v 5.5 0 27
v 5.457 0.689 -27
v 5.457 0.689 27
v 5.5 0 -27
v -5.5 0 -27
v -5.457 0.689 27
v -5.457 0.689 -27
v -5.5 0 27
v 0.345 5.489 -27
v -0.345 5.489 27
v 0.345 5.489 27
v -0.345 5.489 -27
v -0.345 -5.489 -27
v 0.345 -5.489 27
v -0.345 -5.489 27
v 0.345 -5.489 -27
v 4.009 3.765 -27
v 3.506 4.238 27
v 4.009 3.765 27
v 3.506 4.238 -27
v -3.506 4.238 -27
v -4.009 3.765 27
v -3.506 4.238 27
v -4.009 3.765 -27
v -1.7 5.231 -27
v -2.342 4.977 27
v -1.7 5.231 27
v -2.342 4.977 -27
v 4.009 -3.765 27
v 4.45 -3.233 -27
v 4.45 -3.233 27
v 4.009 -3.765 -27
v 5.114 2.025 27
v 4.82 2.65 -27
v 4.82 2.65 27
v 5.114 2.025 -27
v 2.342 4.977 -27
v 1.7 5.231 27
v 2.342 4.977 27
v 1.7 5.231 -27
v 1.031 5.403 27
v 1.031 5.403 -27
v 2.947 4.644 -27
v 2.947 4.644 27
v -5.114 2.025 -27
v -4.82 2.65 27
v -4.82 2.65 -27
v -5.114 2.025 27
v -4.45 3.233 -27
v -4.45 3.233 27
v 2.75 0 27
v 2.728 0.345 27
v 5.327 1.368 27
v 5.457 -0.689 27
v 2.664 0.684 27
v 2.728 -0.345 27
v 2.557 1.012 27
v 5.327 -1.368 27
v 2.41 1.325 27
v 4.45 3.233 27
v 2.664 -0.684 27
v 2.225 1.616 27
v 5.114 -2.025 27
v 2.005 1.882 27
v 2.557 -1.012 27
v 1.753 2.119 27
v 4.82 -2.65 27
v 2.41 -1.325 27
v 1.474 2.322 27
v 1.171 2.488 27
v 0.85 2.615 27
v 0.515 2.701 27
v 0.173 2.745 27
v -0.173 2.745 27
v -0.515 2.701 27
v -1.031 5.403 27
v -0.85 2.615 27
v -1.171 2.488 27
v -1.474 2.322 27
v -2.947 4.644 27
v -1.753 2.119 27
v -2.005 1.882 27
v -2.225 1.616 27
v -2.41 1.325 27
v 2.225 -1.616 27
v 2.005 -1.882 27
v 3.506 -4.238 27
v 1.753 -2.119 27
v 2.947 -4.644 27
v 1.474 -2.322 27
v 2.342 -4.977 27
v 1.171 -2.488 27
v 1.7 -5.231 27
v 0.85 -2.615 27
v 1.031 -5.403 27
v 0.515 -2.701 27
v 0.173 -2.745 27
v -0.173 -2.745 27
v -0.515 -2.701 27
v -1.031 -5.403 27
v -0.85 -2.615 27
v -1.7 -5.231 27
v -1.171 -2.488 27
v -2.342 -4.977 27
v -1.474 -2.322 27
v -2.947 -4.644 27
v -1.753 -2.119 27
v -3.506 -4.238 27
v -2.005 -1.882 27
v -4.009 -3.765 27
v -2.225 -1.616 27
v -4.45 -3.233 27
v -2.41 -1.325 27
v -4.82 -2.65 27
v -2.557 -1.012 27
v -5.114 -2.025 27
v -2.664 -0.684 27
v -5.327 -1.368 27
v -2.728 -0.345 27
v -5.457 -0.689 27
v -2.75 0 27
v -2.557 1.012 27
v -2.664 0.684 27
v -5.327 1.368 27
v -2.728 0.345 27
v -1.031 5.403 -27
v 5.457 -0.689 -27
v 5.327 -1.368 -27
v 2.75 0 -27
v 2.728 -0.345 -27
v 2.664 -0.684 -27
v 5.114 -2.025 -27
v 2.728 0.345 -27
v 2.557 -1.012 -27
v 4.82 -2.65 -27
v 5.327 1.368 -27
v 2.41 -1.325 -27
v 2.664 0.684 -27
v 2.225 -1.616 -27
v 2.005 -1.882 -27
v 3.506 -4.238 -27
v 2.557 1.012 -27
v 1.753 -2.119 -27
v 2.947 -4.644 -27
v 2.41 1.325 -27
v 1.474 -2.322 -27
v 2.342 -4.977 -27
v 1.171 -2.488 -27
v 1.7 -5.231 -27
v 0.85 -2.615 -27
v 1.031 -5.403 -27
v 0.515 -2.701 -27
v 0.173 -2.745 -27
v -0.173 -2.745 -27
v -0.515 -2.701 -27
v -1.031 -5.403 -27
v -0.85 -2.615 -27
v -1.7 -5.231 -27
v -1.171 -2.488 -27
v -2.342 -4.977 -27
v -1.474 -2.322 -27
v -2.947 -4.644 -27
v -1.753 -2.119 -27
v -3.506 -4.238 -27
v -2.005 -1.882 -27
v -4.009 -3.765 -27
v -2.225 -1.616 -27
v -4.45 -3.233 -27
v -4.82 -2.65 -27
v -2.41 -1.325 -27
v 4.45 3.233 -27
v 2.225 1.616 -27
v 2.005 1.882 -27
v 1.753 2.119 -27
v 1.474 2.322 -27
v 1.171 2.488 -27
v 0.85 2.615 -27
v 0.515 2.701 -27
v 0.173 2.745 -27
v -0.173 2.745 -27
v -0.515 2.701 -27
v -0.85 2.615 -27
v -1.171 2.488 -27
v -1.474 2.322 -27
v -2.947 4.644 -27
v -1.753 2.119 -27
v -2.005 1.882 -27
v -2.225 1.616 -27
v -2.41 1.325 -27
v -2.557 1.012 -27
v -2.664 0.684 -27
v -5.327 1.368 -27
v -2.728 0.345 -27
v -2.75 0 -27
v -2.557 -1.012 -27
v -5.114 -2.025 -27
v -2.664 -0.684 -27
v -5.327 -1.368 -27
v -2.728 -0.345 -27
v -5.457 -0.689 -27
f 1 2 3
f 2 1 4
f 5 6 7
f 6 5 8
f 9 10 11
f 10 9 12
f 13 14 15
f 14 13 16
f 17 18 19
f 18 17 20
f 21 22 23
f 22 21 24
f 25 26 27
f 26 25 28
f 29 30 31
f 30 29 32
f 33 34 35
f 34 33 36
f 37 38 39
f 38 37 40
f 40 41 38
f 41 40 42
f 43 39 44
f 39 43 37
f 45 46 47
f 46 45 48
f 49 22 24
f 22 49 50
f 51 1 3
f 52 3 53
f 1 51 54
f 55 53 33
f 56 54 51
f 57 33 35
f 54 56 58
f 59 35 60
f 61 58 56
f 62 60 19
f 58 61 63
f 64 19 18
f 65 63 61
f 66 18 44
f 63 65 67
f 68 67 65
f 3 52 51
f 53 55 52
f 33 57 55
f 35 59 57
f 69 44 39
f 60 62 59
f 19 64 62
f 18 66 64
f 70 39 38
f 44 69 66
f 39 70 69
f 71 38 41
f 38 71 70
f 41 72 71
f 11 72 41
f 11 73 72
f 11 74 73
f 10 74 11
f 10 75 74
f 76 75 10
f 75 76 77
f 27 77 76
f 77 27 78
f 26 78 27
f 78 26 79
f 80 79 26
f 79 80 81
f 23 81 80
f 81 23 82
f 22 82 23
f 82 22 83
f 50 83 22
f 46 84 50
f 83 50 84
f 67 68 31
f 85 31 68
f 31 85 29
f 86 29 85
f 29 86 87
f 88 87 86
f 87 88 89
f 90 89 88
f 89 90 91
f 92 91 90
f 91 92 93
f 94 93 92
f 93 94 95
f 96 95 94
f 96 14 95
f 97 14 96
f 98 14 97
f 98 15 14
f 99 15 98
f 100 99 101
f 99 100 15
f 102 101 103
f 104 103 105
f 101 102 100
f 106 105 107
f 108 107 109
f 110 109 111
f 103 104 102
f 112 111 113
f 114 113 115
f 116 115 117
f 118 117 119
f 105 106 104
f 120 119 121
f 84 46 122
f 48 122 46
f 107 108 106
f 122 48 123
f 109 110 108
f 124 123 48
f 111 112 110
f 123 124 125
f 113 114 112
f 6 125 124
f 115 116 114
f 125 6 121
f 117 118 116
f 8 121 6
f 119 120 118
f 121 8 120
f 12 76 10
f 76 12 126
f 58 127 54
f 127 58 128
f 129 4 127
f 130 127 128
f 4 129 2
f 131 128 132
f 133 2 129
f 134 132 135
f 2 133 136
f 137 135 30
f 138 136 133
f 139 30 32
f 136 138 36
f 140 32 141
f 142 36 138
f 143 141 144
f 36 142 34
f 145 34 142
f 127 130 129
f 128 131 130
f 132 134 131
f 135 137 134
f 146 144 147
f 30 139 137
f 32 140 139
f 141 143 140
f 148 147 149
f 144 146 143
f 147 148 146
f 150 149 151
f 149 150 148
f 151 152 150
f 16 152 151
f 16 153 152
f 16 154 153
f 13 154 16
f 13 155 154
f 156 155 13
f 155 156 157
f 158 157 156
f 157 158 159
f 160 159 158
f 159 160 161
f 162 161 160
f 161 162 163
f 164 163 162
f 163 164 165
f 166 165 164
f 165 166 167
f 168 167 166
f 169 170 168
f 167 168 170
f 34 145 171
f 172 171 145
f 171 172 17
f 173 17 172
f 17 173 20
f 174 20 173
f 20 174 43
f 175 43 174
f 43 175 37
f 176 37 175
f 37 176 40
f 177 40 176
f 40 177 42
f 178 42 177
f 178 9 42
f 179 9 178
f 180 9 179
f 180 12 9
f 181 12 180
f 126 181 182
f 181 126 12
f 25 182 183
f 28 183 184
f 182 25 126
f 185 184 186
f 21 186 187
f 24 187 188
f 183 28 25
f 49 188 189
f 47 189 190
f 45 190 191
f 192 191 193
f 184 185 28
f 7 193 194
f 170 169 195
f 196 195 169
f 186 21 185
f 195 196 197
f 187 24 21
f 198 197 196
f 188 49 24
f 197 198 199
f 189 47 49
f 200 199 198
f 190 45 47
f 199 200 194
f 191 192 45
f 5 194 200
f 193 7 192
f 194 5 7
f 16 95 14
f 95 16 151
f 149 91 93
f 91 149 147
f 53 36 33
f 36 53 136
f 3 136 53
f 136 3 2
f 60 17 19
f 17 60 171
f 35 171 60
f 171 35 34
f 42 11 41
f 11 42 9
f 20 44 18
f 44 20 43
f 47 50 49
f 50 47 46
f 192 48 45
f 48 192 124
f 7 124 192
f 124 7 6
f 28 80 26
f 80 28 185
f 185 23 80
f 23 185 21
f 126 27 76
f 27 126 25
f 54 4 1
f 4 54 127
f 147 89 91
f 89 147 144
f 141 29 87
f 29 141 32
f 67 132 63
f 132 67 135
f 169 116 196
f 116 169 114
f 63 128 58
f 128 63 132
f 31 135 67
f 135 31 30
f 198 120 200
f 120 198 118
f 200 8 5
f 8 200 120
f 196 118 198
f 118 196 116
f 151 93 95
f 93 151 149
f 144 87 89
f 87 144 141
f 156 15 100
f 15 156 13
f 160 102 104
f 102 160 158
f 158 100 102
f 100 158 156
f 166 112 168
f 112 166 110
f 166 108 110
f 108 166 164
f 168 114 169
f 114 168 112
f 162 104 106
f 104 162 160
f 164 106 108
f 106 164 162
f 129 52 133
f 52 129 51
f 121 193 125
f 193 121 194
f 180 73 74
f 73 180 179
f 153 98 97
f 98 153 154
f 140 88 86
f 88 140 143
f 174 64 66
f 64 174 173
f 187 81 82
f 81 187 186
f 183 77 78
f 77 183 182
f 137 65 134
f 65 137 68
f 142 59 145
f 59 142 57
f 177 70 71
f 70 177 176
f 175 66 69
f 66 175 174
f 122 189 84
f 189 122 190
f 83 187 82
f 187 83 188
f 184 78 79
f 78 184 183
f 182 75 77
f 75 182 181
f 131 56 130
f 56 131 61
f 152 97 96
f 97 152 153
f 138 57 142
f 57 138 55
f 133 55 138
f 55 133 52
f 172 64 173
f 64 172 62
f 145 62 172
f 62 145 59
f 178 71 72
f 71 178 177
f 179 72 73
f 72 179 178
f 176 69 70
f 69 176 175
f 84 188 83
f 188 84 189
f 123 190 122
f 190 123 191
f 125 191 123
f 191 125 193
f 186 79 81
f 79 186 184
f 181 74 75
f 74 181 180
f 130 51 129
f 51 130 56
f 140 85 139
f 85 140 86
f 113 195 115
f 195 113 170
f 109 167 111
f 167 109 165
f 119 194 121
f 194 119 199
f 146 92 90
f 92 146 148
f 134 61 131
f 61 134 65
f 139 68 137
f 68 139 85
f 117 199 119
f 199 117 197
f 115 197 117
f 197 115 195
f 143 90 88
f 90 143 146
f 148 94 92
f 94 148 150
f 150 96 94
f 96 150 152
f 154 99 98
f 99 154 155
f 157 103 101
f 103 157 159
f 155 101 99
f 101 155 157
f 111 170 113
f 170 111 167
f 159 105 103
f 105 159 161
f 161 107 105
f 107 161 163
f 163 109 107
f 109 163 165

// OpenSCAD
$fn = 50;


difference() {
	union() {
		translate(v = [0, 0, -27.0000000000]) {
			cylinder(h = 54, r = 5.5000000000);
		}
	}
	union() {
		translate(v = [0, 0, -100.0000000000]) {
			cylinder(h = 200, r = 2.7500000000);
		}
	}
}
